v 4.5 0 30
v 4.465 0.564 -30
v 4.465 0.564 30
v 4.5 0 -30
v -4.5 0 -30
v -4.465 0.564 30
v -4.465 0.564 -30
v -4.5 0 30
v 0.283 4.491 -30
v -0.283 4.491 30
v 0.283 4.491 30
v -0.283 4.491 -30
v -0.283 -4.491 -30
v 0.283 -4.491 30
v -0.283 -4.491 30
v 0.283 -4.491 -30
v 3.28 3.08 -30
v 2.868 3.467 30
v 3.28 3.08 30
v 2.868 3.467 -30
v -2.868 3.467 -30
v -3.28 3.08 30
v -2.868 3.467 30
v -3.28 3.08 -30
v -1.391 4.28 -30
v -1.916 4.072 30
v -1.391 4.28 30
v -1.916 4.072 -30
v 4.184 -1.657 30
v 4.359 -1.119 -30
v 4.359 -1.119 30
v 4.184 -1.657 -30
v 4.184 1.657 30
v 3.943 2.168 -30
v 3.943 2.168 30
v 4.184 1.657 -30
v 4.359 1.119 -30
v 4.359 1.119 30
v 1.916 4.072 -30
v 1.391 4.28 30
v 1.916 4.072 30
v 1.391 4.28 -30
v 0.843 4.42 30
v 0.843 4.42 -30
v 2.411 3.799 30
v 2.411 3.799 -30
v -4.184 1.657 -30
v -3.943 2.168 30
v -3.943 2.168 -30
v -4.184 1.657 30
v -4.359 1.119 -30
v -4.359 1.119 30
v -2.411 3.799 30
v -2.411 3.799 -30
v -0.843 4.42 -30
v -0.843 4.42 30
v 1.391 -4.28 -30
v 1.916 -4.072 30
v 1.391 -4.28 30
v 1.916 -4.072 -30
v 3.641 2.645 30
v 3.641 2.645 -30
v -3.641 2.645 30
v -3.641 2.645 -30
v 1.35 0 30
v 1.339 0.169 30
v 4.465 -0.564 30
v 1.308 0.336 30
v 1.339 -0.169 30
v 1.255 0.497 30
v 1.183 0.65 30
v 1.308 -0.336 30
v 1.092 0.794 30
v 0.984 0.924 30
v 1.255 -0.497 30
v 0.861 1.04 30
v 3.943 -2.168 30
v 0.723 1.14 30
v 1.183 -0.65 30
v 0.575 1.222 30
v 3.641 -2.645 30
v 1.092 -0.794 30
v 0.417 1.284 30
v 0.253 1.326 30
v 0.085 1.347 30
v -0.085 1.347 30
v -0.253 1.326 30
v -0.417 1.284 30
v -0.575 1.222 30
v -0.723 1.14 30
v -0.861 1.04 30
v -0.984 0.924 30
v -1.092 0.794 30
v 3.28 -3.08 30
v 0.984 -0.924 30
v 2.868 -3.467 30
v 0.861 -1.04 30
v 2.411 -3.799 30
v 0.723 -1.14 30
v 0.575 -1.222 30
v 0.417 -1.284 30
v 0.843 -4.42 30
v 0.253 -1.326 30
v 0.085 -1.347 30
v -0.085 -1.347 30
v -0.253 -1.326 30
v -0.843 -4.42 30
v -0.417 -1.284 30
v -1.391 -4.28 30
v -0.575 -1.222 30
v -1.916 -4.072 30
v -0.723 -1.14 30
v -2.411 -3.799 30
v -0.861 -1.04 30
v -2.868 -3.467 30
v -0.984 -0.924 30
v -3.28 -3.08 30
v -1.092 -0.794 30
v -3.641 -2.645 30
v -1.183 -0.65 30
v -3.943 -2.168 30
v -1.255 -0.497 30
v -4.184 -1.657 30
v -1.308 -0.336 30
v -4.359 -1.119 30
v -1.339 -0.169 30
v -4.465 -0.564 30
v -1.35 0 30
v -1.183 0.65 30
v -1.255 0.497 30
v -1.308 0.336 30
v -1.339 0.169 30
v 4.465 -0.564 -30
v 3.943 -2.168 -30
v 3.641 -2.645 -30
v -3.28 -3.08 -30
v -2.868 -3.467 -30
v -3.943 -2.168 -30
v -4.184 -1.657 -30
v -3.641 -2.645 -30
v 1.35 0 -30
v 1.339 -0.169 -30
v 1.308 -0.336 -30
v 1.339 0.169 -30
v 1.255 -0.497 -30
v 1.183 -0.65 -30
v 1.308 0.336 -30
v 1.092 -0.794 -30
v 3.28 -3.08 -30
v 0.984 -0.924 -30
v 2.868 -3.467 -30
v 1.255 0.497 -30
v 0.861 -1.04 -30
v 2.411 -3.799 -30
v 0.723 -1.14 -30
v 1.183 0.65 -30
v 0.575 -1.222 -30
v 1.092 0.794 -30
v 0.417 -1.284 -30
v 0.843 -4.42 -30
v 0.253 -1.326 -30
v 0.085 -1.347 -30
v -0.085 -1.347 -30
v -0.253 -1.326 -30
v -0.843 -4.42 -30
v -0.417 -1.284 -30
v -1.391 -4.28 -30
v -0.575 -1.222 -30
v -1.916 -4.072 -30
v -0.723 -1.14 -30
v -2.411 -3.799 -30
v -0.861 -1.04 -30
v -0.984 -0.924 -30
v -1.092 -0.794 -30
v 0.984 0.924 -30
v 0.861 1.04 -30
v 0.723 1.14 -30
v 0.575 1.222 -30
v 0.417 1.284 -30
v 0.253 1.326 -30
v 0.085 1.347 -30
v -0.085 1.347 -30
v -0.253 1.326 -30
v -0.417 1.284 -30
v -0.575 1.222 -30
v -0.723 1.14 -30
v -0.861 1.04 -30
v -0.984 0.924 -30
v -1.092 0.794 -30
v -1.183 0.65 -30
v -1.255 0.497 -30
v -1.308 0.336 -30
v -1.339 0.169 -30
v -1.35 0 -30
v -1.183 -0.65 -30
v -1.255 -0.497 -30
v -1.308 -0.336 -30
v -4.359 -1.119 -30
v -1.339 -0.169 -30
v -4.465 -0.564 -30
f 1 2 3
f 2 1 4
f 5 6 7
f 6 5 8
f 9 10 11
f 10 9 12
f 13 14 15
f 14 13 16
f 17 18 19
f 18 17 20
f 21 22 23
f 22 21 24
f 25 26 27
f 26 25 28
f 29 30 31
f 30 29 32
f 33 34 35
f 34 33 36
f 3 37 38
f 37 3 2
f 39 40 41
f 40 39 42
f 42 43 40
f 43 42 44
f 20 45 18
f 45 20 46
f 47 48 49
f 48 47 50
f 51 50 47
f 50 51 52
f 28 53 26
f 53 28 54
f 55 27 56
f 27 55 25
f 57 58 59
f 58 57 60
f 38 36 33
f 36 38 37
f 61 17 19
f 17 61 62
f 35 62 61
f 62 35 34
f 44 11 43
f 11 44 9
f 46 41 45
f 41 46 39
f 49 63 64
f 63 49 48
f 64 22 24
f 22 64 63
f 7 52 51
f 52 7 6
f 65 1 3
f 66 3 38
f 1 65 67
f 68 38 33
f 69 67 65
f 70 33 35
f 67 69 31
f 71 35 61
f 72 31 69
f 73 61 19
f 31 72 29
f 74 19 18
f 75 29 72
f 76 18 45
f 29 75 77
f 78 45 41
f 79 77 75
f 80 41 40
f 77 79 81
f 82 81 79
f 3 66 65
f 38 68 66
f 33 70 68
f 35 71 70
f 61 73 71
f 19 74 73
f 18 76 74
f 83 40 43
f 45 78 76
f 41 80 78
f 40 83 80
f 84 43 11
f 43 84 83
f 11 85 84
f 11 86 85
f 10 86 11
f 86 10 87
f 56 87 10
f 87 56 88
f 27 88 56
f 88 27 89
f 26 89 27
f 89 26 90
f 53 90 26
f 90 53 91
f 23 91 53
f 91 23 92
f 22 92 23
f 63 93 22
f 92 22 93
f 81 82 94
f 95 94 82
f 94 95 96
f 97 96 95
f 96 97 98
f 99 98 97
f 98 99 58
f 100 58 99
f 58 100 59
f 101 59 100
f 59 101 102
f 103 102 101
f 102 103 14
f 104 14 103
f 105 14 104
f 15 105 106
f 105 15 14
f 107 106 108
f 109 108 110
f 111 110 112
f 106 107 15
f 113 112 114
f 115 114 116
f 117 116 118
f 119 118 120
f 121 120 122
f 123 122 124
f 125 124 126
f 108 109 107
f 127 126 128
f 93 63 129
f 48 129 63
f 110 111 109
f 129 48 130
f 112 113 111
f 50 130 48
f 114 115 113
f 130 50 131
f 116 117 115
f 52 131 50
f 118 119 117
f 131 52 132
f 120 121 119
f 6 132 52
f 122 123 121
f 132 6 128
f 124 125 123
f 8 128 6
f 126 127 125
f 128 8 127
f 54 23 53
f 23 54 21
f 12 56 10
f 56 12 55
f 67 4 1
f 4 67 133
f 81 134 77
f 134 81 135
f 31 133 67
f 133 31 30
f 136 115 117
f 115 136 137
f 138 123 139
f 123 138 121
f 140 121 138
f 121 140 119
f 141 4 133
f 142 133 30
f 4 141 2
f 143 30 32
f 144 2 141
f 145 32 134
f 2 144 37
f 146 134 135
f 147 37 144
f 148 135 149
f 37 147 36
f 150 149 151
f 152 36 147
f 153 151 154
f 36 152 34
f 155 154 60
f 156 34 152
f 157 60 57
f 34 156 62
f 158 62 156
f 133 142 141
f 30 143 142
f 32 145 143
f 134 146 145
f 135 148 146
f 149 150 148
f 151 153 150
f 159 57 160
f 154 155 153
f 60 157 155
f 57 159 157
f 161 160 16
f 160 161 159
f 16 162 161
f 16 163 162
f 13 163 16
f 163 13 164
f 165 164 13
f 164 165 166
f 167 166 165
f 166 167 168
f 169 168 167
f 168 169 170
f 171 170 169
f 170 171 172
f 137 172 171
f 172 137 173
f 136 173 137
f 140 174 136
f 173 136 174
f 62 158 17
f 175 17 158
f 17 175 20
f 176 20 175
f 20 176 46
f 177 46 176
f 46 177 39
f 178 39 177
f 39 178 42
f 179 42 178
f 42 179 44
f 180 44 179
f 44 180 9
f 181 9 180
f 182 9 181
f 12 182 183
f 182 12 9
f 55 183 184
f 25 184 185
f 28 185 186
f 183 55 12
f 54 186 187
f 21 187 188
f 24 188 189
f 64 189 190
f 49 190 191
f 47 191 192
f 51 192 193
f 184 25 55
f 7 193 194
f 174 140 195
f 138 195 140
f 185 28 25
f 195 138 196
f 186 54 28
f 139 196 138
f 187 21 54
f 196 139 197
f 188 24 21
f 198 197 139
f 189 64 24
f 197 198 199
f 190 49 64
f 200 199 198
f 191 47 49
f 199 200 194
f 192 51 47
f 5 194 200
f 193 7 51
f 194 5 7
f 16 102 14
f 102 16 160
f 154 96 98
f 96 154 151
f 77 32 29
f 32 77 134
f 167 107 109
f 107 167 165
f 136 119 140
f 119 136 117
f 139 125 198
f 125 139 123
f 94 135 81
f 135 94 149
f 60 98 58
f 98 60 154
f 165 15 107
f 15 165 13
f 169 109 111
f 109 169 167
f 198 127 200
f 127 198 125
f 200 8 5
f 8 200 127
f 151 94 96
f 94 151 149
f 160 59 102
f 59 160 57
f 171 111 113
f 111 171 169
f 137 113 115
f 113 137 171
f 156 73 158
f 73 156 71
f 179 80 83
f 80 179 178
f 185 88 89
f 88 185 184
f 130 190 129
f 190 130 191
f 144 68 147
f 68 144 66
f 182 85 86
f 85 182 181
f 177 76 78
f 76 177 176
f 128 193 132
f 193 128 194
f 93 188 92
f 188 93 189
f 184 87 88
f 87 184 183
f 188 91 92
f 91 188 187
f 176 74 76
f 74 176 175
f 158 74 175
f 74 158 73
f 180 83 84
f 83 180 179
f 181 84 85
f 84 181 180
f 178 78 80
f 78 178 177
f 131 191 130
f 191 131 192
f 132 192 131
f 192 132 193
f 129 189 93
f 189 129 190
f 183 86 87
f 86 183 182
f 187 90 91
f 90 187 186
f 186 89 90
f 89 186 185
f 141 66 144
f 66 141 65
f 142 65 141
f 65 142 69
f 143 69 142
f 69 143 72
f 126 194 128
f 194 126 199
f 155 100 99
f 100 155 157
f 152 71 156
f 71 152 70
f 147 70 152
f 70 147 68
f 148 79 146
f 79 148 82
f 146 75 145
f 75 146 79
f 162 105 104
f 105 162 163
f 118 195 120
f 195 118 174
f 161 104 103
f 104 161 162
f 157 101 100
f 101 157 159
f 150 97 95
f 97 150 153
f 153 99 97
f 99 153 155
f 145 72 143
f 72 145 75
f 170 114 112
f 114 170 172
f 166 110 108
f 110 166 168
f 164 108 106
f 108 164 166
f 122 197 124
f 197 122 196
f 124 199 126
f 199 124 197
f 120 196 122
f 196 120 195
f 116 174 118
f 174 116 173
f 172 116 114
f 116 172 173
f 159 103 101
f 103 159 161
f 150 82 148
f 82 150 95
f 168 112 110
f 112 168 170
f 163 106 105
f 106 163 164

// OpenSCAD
$fn = 50;


difference() {
	union() {
		translate(v = [0, 0, -30.0000000000]) {
			cylinder(h = 60, r = 4.5000000000);
		}
	}
	union() {
		translate(v = [0, 0, -100.0000000000]) {
			cylinder(h = 200, r = 1.3500000000);
		}
	}
}
